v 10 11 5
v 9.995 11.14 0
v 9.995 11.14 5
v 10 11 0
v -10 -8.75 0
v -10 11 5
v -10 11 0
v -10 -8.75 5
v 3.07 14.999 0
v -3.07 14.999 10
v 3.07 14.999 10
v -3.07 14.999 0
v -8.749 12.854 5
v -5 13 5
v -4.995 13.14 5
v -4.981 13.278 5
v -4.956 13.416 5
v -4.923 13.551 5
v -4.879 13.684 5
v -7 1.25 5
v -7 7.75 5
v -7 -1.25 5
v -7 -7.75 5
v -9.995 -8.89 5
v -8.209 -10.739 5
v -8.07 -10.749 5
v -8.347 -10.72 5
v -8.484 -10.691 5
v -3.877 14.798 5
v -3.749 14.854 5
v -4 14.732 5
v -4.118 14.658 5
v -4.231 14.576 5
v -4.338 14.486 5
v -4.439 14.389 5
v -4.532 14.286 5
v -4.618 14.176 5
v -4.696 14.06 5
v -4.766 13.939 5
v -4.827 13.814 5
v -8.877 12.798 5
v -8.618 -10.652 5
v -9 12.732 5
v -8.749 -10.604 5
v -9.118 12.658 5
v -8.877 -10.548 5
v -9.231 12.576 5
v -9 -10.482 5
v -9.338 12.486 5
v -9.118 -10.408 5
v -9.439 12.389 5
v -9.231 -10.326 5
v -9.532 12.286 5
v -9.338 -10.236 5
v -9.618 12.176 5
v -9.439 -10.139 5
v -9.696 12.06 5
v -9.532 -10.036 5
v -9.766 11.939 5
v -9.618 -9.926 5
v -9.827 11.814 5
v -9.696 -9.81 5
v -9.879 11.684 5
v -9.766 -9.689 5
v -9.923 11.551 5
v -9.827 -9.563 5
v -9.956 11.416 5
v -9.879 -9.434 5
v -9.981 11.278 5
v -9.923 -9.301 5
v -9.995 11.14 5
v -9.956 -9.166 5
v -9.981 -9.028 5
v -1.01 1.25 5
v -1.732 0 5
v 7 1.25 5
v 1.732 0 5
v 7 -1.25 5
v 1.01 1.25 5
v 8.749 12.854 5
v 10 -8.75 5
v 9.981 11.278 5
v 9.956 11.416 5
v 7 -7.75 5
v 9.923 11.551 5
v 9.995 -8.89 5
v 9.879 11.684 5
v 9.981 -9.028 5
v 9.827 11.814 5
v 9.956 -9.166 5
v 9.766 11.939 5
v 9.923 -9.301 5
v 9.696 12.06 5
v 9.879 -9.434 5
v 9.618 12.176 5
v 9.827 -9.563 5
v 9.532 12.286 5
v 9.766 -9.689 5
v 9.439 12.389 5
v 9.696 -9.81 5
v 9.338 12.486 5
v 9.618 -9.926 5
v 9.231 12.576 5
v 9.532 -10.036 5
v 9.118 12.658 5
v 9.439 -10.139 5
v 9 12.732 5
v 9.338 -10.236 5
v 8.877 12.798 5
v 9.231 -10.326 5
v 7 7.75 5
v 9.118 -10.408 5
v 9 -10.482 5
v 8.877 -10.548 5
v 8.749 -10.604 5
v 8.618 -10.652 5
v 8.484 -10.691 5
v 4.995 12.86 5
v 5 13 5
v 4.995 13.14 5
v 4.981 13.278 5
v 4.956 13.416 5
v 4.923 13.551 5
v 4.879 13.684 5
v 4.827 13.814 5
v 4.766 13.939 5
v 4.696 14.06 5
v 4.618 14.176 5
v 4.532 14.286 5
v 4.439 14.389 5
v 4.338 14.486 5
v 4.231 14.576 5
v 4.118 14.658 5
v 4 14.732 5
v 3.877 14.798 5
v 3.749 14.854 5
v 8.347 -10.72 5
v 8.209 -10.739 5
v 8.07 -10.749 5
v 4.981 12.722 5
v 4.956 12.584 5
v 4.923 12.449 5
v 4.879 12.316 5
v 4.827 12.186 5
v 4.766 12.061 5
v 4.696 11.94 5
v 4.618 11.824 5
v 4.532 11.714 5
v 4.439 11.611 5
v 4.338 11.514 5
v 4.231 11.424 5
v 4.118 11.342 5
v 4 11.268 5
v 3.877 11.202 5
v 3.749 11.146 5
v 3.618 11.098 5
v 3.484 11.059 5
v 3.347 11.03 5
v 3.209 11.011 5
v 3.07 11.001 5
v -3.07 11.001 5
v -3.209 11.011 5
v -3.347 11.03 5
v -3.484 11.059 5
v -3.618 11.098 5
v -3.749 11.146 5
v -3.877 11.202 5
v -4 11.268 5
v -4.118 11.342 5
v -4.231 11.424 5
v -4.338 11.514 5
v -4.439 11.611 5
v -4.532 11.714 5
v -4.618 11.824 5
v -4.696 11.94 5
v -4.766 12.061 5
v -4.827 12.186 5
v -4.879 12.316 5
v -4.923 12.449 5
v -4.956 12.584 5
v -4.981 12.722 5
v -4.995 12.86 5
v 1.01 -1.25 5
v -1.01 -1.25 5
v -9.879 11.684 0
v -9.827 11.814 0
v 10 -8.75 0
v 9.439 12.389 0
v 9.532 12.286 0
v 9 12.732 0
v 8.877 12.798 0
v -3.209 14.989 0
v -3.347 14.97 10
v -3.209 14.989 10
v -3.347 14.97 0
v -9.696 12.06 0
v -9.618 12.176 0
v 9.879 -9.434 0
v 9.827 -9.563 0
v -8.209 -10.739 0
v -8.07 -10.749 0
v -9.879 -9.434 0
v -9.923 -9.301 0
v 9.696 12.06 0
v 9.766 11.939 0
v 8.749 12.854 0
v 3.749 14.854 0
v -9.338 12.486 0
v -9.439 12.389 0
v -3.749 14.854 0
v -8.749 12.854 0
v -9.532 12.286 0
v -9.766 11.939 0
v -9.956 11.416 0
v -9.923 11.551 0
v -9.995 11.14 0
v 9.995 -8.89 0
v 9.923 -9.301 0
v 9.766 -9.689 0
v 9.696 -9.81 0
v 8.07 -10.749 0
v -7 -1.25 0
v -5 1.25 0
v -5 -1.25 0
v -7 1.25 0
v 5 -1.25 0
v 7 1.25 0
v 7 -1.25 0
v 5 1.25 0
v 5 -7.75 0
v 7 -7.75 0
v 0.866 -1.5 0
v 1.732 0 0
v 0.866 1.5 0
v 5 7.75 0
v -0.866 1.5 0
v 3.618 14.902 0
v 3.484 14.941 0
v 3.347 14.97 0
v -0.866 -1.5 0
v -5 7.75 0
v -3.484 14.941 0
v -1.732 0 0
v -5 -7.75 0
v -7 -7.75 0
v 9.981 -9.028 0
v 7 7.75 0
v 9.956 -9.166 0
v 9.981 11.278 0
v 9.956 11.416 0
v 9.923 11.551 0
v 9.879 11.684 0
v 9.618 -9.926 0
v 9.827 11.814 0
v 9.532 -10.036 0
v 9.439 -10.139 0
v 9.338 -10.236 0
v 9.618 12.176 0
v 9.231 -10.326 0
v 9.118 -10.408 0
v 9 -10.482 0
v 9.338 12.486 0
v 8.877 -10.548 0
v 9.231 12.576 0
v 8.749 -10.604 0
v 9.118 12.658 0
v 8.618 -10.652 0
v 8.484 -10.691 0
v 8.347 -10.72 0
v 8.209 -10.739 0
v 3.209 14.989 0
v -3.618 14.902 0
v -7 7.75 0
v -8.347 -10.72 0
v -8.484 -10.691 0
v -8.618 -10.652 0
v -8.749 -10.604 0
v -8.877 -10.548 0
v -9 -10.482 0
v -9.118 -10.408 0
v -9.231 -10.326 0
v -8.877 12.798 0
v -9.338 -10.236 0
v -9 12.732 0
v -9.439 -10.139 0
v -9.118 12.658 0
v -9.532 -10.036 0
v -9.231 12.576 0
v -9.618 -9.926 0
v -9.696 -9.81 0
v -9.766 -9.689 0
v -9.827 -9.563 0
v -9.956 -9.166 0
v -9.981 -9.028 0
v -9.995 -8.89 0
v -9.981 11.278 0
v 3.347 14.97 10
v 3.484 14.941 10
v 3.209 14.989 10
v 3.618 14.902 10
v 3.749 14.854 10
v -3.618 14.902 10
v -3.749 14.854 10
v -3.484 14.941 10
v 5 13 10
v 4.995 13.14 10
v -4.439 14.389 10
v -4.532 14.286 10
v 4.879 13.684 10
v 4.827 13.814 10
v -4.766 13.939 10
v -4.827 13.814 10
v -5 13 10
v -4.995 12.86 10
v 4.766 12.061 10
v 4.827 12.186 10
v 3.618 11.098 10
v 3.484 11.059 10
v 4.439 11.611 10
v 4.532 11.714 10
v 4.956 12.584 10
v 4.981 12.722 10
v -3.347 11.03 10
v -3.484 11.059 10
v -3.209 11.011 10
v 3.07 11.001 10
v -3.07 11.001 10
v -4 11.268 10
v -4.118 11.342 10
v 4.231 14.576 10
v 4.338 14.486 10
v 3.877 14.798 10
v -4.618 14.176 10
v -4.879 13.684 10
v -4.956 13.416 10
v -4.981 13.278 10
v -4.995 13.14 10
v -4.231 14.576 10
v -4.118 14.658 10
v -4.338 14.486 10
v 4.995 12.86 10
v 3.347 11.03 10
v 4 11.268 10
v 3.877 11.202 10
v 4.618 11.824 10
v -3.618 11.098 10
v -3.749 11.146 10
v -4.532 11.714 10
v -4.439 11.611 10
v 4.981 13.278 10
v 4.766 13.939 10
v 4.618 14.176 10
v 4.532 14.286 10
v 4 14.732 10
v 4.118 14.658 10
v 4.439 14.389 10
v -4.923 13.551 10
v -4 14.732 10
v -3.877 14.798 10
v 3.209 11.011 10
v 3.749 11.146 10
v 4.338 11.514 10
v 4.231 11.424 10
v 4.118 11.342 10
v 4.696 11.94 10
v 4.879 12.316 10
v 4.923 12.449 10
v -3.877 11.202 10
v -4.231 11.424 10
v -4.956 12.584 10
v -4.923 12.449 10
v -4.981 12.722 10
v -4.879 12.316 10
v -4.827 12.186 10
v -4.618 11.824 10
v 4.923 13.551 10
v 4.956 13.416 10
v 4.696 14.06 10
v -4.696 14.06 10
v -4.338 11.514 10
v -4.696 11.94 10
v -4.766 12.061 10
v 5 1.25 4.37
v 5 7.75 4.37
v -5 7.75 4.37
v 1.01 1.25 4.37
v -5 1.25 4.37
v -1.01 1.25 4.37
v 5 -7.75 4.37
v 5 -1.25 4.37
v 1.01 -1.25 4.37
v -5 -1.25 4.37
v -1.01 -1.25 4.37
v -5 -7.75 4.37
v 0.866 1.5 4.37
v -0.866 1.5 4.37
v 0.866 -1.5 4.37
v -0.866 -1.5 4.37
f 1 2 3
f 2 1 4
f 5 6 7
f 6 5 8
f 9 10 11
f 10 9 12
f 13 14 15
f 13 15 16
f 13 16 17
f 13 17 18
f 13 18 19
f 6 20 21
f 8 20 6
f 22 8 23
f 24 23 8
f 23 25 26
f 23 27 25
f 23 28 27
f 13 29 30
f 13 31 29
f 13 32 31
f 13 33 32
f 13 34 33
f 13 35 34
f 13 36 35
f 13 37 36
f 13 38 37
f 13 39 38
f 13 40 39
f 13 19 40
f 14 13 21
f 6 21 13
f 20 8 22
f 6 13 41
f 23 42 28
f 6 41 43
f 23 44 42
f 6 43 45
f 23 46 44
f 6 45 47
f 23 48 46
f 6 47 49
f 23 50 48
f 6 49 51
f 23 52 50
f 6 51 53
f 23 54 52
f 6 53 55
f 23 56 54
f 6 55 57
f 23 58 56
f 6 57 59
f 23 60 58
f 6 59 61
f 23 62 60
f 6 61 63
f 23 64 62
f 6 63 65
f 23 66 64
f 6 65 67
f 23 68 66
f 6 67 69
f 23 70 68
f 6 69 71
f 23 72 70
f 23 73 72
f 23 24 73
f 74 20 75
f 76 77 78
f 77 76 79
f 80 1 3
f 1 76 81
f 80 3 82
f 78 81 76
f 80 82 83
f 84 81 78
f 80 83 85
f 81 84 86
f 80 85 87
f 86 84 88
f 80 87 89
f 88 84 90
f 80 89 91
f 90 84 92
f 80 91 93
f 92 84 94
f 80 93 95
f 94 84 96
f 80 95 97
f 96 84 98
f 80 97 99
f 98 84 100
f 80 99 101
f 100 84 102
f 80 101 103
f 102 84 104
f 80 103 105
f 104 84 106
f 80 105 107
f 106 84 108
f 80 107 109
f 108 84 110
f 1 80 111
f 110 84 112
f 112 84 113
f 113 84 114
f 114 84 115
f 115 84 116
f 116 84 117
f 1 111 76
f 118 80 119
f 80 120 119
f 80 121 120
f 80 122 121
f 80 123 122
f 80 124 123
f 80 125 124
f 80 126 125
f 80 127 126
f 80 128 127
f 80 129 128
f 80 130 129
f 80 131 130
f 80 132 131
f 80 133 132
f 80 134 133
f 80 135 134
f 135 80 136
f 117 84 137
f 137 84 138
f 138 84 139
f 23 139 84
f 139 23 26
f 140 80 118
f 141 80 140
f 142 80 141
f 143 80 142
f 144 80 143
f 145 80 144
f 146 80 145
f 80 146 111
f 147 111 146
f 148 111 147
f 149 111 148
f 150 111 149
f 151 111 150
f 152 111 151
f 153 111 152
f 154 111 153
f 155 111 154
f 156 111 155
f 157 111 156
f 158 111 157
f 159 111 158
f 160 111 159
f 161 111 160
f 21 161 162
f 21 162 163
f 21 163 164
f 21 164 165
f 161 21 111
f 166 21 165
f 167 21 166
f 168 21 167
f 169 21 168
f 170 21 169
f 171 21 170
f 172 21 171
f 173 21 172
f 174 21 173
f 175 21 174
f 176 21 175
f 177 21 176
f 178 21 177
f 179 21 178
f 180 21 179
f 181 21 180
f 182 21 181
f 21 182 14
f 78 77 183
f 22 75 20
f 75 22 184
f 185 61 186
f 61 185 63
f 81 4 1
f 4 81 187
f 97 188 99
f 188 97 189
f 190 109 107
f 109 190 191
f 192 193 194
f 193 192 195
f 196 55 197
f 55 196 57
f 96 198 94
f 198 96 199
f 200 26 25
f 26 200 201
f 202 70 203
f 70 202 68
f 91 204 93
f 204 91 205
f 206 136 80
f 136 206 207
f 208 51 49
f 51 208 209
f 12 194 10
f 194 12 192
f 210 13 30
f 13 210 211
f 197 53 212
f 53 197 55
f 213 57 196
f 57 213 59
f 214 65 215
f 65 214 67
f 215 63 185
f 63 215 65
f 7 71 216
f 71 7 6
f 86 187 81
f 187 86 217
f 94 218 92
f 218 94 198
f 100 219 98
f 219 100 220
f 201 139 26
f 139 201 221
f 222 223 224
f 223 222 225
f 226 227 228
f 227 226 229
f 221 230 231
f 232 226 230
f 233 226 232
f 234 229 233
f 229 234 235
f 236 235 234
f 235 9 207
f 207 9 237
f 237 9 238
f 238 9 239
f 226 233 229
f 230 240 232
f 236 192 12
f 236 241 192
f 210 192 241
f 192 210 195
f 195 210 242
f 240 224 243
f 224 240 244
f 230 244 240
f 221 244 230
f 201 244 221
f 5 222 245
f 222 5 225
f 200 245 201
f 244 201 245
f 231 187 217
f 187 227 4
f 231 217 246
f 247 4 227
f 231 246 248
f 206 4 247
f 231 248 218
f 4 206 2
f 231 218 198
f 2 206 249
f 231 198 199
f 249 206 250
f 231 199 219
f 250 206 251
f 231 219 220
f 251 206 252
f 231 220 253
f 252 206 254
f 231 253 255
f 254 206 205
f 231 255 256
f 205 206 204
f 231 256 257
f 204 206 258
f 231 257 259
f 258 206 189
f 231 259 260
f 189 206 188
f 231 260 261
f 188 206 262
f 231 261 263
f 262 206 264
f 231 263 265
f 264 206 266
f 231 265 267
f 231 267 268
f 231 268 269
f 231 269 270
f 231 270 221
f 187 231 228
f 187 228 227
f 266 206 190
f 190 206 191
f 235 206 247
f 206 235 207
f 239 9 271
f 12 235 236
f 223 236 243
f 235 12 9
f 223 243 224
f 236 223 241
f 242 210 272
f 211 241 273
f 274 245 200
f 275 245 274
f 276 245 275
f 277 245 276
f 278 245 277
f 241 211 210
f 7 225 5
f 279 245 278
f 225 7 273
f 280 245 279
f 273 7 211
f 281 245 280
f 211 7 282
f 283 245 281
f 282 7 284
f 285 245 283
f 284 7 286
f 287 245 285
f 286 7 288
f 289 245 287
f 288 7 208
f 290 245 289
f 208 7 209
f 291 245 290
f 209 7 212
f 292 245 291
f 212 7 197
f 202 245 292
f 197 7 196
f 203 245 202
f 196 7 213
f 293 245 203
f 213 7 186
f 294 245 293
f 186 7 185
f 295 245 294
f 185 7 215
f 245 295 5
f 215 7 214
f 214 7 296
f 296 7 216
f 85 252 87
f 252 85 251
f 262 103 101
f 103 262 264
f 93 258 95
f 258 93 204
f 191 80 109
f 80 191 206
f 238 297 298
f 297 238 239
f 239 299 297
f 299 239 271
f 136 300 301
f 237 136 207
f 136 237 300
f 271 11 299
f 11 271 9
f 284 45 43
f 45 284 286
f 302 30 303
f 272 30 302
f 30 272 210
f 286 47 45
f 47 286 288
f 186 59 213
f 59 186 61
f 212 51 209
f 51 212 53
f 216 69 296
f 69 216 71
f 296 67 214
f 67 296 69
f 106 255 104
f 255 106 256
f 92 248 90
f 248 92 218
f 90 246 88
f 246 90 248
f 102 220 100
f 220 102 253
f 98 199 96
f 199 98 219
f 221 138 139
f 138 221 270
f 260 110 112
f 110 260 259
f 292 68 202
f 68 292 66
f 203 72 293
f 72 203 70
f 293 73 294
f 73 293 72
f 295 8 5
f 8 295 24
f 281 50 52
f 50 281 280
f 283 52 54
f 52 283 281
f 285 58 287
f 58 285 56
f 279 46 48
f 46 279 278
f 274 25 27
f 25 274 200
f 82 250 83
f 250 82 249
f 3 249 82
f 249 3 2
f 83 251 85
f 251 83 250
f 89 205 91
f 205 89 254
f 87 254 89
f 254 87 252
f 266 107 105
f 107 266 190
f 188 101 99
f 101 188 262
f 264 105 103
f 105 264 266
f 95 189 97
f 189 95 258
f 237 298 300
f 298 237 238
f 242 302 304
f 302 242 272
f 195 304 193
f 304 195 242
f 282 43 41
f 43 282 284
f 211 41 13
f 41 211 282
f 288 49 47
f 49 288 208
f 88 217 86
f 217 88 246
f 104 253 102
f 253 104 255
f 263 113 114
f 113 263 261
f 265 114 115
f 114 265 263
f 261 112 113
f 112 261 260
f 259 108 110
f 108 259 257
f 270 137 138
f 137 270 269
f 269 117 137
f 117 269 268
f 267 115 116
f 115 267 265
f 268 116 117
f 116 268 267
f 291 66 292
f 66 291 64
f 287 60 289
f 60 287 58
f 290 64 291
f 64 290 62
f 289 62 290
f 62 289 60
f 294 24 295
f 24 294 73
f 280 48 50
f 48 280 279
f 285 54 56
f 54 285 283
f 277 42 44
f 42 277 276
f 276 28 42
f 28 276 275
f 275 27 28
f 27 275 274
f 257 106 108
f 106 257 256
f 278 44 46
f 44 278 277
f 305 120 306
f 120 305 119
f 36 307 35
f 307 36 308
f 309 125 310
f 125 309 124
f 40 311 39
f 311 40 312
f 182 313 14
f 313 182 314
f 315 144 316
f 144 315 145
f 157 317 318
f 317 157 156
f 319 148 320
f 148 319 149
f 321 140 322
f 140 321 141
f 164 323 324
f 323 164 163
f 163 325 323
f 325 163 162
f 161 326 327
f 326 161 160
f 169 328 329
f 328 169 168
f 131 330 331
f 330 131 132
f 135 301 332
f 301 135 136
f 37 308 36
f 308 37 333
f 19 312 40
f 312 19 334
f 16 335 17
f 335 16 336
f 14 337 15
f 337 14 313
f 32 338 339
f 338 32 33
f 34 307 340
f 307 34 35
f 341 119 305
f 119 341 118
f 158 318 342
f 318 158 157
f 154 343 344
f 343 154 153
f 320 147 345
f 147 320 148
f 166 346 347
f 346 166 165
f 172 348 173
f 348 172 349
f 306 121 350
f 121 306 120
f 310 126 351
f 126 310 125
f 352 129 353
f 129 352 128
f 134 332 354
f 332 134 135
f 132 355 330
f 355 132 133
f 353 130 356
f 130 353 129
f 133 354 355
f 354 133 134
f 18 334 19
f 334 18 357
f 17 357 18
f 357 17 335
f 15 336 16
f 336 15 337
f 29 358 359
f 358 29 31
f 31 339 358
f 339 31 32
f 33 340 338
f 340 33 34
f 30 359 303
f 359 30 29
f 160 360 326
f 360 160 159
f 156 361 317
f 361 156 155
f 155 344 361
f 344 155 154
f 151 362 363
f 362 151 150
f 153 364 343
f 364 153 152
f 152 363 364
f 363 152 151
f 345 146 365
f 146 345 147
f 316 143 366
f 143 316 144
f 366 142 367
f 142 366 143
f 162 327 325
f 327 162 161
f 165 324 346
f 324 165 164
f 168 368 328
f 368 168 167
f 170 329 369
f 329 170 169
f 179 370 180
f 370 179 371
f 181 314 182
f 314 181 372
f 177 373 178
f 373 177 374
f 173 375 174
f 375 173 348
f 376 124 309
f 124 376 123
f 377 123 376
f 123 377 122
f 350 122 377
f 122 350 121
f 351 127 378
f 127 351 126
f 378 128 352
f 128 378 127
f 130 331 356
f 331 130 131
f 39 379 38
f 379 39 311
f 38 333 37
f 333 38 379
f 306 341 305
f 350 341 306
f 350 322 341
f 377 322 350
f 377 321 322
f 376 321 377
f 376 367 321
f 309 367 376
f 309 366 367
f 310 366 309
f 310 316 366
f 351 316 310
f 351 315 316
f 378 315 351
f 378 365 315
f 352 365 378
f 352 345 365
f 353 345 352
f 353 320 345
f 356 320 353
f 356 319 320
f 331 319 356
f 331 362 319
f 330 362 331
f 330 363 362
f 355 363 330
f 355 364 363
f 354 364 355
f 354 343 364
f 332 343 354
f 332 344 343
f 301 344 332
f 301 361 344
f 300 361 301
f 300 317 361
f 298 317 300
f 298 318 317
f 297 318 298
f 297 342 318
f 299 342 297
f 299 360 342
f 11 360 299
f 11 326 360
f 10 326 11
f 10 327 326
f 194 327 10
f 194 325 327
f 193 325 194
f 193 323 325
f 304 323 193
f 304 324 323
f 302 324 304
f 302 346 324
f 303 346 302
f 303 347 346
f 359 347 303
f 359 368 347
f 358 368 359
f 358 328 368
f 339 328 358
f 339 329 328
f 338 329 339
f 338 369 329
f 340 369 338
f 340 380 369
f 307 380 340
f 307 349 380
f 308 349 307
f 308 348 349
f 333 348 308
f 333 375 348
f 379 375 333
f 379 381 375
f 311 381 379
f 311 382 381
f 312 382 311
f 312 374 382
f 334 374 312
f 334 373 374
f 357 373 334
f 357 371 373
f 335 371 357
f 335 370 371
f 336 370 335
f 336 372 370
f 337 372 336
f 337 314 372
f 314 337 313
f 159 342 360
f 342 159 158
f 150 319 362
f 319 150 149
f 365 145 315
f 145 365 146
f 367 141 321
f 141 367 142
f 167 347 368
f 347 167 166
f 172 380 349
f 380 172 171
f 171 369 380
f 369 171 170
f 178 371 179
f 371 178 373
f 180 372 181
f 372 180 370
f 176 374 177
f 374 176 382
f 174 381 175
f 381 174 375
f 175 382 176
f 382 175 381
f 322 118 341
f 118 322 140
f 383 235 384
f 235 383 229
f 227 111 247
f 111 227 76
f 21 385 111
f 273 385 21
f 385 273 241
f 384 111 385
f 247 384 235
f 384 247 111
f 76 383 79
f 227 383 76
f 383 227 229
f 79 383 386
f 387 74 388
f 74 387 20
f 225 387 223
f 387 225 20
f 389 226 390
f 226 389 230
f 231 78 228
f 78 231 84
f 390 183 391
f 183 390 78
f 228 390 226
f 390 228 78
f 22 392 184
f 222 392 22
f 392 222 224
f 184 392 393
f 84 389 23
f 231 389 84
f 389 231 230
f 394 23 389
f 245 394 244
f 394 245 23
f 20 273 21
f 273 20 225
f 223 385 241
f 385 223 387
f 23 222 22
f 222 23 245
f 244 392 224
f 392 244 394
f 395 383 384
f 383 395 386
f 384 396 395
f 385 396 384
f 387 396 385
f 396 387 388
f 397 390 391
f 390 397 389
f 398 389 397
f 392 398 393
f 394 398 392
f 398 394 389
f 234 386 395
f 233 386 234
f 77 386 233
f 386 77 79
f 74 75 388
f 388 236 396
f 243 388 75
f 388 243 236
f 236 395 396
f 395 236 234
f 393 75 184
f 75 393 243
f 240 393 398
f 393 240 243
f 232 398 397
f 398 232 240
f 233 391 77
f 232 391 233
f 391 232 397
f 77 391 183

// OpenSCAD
// file: ../../polyhole.scad
// The Cylinder is dead! Long live the Cylinder!
// A module for a polyhole by radius, based on Nophead's work.

module polyhole(h, r, cent = false)
{
    n = max(round(4 * r), 3);
    cylinder(h = h, r = r / cos(180 / n), $fn = n, center = cent);
}
// main file
use<../../polyhole.scad>

BeltClamp();

module BeltClamp()
{
    difference()
    {
        union()
        {
            hull()
            {
                translate([(10/2+5)-2, (20+6)/2-2, 0])
                    cylinder(h = 5, r = 2, $fn = 90);
                translate([(10/2+5)-2, -(4.5+6.5/2+3-2), 0])
                    cylinder(h = 5, r = 2, $fn = 90);
                translate([-(10/2+5)+2, (20+6)/2-2, 0])
                    cylinder(h = 5, r = 2, $fn = 90);
                translate([-(10/2+5)+2, -(4.5+6.5/2+3-2), 0])
                    cylinder(h = 5, r = 2, $fn = 90);
                translate([3, (20+6)/2, 0])
                    cylinder(h = 5, r = 2, $fn = 90);
                translate([-3, (20+6)/2, 0])
                    cylinder(h = 5, r = 2, $fn = 90);
            }
            hull()
            {
                translate([3, (20+6)/2, 0])
                    cylinder(h = 5+5, r = 2, $fn = 90);
                translate([-3, (20+6)/2, 0])
                    cylinder(h = 5+5, r = 2, $fn = 90);
            }
        }
        translate([10/2+1, 4.5, 5/2])
            cube([2, 6.5, 5], center =true);
        translate([10/2+1, -4.5, 5/2])
            cube([2, 6.5, 5], center =true);
        translate([-10/2-1, 4.5, 5/2])
            cube([2, 6.5, 5], center =true);
        translate([-10/2-1, -4.5, 5/2])
            cube([2, 6.5, 5], center =true);
        translate([0, 4.5, 5])
            cube([10, 6.5, 2*(1.38-0.75)], center =true);
        translate([0, -4.5, 5])
            cube([10, 6.5, 2*(1.38-0.75)], center =true);
        polyhole(5, 1.5);
    }
}
